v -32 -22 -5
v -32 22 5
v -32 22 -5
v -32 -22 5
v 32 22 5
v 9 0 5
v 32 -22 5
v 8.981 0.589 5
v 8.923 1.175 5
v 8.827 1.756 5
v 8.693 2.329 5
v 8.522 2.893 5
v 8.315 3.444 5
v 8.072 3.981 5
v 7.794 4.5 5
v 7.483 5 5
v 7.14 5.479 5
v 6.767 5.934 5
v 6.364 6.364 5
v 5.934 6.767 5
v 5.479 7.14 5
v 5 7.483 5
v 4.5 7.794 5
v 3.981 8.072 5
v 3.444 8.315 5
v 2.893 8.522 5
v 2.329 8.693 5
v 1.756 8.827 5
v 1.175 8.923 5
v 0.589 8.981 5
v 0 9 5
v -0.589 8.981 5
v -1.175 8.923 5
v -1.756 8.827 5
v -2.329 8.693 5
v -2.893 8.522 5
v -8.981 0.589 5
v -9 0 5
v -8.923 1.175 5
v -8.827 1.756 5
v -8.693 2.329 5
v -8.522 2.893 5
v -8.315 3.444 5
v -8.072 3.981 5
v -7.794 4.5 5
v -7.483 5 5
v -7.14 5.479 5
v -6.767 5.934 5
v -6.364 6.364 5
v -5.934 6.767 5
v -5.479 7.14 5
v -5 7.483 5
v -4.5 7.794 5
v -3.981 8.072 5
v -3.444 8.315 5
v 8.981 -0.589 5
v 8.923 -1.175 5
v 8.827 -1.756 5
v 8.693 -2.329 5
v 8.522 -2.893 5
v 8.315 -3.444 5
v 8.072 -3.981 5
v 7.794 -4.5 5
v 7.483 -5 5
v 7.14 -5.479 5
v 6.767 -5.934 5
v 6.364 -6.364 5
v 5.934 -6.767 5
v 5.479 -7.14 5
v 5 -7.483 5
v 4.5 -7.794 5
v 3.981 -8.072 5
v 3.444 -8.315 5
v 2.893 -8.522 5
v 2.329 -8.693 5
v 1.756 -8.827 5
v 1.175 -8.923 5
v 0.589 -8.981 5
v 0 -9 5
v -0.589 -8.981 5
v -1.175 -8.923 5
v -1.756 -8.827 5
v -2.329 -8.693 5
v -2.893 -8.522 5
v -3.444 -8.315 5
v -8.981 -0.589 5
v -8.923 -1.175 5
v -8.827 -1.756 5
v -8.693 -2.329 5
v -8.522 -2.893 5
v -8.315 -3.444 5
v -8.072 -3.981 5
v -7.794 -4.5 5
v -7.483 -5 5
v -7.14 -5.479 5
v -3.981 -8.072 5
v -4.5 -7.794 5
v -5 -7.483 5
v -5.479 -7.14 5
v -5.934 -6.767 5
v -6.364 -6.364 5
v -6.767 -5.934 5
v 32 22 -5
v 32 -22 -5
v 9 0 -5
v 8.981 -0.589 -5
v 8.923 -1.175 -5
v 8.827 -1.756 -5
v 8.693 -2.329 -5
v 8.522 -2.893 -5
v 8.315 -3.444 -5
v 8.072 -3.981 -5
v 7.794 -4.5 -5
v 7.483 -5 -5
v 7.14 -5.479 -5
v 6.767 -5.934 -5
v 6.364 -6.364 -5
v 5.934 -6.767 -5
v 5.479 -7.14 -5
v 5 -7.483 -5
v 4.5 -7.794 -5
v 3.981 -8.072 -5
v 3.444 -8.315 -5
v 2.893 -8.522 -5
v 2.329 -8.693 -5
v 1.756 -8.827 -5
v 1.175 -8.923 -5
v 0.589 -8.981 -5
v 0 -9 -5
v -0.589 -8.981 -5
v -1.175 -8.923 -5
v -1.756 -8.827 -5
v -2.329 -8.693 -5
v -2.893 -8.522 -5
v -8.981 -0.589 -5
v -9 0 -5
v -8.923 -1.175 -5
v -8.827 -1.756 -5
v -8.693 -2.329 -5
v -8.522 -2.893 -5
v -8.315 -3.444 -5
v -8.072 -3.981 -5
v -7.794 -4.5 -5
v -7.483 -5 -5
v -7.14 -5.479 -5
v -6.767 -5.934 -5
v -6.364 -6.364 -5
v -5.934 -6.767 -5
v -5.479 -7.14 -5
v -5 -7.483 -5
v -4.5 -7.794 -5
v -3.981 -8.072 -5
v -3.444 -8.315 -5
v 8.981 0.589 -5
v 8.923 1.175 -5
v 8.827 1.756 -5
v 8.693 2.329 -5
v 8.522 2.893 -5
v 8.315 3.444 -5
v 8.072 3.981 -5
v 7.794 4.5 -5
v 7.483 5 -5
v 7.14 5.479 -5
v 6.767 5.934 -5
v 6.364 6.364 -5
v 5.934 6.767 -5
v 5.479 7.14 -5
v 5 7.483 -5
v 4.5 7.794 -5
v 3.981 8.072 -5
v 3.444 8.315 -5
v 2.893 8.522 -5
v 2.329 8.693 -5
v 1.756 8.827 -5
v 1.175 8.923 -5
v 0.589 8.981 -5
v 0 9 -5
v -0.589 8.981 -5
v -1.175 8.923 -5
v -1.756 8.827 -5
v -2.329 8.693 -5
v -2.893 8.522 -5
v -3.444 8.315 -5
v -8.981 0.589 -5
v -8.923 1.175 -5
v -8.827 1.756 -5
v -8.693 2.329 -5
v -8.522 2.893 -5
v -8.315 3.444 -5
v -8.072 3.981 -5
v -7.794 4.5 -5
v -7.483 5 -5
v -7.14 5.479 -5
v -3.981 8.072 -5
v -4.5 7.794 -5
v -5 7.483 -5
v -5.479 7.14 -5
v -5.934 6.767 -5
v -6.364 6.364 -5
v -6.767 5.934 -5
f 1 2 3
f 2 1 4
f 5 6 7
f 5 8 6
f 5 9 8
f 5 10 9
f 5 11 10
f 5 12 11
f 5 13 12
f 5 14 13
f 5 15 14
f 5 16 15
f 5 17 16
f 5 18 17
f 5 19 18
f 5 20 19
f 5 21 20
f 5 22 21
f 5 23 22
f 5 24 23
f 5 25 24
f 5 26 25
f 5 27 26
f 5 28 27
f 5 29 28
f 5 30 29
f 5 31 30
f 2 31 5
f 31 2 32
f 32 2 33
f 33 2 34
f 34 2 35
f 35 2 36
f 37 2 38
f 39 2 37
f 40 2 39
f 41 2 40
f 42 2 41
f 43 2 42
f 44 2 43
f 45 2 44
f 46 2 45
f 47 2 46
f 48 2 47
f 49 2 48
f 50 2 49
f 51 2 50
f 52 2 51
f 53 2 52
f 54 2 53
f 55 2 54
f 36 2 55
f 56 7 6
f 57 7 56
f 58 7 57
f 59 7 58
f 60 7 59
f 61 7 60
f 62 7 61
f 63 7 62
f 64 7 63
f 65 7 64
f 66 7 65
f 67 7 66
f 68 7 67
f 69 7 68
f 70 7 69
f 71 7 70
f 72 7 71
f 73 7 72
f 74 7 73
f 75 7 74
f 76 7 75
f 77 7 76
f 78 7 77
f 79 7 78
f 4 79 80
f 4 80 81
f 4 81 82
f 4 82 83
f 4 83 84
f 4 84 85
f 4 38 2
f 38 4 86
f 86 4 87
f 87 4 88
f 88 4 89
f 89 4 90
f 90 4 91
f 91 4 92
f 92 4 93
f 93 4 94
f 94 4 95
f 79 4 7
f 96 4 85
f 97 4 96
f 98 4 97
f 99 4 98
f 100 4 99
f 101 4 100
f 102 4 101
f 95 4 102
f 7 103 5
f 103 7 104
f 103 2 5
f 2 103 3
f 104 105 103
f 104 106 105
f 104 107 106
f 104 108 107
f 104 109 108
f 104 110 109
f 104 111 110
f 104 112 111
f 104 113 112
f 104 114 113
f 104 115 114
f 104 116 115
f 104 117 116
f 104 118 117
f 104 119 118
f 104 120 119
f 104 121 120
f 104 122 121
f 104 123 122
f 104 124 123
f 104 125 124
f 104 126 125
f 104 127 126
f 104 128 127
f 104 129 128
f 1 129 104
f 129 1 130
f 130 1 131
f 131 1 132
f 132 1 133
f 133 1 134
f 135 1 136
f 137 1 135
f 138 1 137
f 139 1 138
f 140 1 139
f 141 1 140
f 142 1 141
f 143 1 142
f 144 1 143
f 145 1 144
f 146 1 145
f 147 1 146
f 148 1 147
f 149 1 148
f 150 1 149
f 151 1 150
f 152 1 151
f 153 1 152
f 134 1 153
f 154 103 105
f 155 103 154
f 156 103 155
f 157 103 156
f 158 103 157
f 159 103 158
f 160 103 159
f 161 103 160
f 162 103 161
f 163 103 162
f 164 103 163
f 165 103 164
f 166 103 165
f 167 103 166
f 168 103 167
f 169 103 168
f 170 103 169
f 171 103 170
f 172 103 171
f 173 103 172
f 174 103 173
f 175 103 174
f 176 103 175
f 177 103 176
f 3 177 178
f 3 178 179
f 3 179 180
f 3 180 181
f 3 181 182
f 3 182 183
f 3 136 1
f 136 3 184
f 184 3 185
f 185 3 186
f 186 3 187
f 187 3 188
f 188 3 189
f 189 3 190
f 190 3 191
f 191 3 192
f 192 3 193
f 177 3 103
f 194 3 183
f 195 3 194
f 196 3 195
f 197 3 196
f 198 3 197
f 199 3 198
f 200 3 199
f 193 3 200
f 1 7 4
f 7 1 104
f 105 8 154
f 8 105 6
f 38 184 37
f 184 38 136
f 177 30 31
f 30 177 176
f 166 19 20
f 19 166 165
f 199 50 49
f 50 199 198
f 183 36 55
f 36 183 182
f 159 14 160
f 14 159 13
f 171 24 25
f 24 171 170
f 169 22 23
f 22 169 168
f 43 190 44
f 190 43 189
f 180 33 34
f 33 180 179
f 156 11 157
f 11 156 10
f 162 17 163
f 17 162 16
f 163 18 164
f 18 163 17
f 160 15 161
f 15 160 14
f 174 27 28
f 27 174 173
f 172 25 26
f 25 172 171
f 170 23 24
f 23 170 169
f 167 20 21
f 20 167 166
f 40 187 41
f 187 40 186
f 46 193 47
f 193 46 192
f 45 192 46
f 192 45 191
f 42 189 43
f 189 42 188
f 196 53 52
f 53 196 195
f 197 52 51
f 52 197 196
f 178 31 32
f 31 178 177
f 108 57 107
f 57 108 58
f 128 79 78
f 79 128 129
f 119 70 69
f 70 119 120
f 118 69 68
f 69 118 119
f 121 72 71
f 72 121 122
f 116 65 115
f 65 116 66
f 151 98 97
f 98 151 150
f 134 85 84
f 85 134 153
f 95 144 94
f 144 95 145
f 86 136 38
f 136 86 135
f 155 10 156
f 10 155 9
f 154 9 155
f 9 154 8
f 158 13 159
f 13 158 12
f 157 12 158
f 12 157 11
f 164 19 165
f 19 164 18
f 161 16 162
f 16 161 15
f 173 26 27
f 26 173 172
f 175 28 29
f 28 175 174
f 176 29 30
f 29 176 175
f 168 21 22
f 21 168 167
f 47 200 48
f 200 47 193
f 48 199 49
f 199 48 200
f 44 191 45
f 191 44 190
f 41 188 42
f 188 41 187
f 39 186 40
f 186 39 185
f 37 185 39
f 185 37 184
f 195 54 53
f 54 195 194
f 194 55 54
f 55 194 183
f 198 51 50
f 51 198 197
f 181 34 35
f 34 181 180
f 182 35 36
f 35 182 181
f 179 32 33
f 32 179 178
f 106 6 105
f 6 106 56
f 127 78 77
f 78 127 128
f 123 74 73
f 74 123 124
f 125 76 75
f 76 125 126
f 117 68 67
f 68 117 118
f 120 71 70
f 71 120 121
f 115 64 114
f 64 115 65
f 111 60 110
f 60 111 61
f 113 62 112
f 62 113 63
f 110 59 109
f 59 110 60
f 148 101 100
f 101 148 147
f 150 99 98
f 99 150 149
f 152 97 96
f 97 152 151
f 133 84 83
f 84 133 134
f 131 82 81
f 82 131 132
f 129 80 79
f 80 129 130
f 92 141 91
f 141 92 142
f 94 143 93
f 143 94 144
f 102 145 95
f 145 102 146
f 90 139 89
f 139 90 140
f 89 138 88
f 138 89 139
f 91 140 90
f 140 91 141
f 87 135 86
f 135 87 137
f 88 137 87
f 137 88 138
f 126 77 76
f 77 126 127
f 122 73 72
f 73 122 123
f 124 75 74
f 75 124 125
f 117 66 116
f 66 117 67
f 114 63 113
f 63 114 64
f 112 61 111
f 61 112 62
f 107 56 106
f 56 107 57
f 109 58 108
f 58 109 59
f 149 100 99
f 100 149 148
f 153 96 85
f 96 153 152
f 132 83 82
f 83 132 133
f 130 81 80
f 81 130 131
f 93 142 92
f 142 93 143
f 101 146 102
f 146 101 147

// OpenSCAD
$fn = 96;

difference() {
  cube([64, 44, 10], center = true);
  cylinder(h = 12, d = 18, center = true);
}
